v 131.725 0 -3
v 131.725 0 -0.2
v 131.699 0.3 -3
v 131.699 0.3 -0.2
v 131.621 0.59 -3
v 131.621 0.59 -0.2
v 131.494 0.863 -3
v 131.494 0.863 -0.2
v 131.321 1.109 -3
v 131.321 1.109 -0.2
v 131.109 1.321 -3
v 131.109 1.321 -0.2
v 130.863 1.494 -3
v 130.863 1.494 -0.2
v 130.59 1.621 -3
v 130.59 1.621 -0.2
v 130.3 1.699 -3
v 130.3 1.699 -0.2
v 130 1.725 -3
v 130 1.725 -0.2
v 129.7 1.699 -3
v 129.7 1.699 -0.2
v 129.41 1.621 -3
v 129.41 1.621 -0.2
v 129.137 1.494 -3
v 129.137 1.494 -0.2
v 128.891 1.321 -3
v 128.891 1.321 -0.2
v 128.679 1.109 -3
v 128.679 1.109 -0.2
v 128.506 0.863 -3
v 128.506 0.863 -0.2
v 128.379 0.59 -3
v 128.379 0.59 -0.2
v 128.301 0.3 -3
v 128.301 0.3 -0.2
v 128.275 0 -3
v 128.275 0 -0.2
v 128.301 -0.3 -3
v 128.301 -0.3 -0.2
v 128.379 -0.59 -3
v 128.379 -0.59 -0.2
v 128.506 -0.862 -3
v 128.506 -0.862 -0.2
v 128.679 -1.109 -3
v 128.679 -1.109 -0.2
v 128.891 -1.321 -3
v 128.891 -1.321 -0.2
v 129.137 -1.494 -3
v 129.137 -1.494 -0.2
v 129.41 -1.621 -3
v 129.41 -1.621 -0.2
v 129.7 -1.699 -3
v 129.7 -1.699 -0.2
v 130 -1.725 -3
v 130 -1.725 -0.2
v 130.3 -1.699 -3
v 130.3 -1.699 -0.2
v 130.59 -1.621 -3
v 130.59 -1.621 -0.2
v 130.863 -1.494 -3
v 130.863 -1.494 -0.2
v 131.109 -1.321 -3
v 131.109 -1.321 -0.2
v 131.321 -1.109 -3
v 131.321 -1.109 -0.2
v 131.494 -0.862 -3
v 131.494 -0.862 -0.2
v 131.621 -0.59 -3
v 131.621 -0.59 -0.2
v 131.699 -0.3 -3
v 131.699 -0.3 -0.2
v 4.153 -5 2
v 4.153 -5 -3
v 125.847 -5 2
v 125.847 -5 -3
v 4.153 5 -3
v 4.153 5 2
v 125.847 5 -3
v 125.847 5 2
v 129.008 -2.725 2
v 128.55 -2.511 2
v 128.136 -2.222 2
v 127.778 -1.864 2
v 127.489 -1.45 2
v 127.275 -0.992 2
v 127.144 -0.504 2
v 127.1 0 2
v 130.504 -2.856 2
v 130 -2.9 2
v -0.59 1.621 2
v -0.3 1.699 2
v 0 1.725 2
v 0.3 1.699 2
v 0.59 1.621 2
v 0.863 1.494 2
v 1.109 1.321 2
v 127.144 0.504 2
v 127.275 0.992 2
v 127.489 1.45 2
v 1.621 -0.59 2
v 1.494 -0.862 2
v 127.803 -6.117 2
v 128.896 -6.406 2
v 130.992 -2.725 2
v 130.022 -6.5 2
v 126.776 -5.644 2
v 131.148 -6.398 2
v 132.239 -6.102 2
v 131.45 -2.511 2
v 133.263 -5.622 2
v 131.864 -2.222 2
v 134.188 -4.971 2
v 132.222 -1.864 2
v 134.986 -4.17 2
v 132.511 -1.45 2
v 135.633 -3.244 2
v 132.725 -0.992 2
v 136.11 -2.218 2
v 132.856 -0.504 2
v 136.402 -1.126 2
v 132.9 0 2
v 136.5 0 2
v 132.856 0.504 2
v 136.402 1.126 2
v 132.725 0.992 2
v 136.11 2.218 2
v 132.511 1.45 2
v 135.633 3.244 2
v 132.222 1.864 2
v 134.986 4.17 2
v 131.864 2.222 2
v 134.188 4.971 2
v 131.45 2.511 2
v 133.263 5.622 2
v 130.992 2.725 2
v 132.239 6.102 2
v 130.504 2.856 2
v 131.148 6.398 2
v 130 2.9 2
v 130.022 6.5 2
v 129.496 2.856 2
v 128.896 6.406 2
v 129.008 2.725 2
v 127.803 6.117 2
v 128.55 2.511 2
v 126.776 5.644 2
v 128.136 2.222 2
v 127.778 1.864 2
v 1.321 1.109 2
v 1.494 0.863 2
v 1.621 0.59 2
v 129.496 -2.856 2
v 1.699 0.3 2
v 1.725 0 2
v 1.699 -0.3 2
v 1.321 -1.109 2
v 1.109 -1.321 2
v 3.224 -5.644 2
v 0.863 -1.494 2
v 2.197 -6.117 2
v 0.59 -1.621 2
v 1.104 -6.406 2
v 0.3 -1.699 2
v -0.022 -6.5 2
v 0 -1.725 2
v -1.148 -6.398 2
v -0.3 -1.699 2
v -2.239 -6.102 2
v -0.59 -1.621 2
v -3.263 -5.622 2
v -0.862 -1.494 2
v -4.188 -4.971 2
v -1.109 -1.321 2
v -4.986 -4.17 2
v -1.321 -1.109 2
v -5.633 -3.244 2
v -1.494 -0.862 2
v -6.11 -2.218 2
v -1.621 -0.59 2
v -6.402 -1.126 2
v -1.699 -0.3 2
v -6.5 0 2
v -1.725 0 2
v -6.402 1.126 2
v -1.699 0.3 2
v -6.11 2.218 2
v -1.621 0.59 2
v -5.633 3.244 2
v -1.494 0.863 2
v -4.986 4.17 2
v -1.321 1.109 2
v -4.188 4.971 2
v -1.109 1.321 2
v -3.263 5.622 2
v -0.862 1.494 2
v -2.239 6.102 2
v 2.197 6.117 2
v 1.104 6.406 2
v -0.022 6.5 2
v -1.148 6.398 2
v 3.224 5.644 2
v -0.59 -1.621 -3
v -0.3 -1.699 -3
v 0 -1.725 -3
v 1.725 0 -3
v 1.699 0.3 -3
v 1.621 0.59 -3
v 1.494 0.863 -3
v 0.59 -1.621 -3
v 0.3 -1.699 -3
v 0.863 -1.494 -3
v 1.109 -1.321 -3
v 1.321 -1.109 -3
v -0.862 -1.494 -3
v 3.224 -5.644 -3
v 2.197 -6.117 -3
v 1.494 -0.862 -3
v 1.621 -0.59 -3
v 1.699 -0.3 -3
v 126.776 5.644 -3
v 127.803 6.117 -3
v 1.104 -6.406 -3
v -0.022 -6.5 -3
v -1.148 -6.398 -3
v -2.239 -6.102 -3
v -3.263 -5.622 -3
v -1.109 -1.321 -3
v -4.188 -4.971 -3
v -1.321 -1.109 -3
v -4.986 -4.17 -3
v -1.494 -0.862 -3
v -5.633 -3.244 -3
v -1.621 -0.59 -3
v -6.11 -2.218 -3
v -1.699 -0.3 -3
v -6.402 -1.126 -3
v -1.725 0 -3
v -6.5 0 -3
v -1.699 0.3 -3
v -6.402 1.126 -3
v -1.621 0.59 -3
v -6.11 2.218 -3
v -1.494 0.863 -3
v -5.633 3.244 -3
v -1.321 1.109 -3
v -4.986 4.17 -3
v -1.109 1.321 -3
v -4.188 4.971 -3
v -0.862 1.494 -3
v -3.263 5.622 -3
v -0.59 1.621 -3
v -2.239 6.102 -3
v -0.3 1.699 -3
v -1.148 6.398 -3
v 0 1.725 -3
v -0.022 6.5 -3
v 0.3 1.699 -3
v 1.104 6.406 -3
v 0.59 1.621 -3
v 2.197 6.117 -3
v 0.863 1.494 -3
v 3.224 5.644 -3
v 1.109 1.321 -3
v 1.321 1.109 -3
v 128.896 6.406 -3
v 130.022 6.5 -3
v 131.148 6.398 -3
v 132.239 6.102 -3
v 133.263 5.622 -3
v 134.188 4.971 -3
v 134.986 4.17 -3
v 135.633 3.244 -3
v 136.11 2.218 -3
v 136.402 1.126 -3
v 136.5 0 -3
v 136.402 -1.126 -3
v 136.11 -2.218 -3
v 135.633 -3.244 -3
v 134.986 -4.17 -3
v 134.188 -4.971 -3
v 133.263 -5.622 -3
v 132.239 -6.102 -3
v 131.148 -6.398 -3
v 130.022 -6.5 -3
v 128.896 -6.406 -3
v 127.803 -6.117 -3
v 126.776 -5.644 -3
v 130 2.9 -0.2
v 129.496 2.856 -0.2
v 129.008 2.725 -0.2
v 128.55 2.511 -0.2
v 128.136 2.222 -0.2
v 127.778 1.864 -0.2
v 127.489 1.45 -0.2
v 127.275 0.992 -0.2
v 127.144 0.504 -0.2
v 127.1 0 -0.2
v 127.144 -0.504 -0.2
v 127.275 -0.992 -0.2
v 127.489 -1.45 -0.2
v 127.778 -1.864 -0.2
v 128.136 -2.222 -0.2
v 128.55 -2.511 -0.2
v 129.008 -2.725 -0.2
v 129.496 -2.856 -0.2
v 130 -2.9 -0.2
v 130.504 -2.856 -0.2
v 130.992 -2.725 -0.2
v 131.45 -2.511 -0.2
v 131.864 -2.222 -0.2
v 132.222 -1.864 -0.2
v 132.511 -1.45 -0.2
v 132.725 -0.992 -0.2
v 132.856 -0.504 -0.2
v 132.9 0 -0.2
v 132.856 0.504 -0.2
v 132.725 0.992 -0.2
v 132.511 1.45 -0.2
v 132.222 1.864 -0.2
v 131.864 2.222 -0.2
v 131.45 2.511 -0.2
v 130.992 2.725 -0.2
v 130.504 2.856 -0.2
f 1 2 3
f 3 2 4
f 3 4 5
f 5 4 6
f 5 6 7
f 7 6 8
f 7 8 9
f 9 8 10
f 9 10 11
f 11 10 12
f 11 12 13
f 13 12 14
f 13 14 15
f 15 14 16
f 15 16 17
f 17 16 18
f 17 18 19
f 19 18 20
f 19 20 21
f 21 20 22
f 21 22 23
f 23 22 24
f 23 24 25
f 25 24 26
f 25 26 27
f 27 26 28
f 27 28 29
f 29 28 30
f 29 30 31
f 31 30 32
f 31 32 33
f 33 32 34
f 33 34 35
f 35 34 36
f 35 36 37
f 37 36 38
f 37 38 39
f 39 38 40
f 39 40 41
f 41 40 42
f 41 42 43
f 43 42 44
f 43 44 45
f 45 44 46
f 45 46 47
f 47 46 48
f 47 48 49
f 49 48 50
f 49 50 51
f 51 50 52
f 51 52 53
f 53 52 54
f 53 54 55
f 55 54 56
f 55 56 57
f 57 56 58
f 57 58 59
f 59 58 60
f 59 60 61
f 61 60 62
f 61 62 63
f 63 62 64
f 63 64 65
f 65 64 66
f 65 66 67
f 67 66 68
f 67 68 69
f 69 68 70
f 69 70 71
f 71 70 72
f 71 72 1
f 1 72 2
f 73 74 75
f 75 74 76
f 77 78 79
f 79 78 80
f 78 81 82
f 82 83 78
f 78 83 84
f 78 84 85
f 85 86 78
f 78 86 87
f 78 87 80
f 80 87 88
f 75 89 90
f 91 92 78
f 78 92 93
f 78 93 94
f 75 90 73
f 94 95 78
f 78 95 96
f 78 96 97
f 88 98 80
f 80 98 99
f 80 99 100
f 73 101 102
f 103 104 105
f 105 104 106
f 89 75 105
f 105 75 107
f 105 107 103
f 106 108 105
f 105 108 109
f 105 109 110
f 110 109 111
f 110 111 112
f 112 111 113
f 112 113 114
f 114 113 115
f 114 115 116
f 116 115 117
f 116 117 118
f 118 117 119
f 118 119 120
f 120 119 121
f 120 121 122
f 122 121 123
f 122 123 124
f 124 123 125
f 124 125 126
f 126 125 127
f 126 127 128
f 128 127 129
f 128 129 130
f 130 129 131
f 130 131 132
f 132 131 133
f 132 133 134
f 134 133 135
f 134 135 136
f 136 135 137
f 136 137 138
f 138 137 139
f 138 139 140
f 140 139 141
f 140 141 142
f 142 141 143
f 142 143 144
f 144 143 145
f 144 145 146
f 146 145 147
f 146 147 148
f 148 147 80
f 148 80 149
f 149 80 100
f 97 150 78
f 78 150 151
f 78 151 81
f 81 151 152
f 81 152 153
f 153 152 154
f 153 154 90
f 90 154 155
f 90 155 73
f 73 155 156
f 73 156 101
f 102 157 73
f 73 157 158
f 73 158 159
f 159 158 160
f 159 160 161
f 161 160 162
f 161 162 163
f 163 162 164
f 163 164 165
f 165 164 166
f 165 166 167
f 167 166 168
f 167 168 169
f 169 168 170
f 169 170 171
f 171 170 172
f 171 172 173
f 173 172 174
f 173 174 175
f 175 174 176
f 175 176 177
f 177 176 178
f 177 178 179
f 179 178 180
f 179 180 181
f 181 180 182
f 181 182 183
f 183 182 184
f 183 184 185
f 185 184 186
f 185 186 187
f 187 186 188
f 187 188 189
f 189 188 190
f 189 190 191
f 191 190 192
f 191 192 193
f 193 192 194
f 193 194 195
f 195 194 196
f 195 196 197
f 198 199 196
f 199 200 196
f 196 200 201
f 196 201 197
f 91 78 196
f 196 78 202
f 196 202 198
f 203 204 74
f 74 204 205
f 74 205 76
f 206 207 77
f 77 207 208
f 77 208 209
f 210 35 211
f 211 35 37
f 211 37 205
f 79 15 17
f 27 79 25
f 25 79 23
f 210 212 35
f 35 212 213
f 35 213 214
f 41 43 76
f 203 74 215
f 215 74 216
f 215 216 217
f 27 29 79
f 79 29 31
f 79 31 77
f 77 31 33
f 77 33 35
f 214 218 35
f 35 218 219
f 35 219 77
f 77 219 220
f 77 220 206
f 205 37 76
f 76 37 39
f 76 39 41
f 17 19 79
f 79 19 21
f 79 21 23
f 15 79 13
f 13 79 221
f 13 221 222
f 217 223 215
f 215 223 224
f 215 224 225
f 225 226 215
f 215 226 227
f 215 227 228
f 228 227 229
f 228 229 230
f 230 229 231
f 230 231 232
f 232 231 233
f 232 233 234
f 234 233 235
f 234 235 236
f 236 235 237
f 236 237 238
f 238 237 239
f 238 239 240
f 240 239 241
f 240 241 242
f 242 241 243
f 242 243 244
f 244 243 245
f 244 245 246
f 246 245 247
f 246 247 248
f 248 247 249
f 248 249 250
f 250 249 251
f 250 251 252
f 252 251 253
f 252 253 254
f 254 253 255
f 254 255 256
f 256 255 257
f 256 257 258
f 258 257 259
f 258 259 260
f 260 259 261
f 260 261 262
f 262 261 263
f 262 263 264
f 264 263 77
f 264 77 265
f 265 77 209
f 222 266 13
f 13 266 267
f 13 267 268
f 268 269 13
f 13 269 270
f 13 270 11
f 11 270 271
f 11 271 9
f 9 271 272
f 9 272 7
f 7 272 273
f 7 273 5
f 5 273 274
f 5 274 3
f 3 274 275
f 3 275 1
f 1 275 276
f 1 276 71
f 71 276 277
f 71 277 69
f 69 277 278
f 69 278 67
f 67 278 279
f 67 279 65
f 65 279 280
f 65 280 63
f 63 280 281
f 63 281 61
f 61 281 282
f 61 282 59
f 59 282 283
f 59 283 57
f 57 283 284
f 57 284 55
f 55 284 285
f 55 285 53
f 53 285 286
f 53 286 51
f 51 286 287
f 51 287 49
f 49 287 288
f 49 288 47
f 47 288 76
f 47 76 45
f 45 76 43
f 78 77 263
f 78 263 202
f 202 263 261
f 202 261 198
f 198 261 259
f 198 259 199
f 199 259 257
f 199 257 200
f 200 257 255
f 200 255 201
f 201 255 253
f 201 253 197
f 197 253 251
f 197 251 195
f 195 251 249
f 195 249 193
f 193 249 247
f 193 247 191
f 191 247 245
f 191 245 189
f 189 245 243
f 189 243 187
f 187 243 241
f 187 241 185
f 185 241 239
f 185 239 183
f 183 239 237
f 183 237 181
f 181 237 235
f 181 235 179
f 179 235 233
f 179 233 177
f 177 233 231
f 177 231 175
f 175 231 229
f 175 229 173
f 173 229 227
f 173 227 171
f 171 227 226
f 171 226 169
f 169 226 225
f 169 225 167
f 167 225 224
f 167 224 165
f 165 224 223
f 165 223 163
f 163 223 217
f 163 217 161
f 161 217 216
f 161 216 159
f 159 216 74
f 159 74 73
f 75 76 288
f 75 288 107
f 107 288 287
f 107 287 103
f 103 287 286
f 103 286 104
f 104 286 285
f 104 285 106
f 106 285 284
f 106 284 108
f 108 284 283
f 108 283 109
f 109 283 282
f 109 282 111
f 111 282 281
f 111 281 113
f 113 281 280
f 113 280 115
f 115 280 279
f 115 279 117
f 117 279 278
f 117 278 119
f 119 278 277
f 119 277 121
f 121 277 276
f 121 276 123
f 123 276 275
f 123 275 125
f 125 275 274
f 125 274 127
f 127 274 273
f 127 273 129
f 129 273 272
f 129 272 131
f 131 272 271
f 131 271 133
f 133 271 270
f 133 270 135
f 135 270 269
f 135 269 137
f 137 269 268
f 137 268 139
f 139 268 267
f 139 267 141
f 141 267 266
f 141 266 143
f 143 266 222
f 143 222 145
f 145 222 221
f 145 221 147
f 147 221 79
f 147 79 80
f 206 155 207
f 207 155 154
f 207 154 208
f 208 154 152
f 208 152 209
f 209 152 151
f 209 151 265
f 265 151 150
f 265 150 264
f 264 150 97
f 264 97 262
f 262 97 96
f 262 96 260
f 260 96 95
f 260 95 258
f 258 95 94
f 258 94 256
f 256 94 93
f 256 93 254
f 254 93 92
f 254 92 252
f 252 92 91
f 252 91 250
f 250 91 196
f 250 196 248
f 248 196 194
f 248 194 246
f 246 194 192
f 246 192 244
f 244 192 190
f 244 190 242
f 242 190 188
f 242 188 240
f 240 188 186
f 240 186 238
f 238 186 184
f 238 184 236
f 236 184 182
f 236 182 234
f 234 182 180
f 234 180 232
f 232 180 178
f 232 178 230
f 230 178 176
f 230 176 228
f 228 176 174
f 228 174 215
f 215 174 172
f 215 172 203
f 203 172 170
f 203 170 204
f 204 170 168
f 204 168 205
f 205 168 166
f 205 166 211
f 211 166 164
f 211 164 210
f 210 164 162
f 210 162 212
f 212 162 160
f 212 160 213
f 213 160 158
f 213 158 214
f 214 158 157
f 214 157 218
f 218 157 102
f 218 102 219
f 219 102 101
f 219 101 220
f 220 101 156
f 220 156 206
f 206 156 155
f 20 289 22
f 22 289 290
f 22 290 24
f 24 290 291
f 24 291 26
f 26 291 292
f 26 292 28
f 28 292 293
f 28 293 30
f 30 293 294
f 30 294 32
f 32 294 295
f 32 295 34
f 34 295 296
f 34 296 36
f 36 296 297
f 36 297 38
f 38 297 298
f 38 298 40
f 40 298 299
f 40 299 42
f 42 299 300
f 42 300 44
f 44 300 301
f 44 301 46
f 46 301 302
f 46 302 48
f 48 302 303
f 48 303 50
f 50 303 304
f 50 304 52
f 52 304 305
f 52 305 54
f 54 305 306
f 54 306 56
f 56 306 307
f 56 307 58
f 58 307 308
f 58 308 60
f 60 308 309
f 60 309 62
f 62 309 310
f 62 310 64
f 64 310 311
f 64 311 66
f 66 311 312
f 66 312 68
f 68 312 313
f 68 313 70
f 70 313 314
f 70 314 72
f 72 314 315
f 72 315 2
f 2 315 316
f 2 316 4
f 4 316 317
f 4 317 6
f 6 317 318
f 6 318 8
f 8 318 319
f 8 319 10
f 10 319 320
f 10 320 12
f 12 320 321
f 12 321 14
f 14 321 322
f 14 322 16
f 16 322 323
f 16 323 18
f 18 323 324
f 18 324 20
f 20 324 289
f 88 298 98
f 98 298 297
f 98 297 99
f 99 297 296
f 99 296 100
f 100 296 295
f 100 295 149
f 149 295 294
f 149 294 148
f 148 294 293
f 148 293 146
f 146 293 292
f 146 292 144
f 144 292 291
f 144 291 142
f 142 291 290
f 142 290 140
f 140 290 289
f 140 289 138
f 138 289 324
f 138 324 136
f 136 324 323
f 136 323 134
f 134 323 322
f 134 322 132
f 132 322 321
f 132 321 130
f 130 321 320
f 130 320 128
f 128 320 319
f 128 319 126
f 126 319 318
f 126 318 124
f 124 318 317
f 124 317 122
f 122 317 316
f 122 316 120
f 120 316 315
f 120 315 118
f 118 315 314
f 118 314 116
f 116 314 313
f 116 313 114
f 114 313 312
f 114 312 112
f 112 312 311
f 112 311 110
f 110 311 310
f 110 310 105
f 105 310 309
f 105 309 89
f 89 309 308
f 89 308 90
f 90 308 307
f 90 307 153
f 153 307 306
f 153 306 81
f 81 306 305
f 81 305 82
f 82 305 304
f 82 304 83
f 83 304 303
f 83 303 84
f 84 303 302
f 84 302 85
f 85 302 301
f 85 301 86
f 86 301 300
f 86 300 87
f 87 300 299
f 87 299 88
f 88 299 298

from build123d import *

# Parameters (mm, degrees)
BOSS_EXTRUDE1_START     = -3
SKETCH1_W               = 130
SKETCH1_H               = 10
BOSS_EXTRUDE1_DEPTH     = 5
BOSS_EXTRUDE2_START     = -3
SKETCH2_R               = 6.5
BOSS_EXTRUDE2_DEPTH     = 5
BOSS_EXTRUDE3_START     = -3
SKETCH3_R               = 6.5
BOSS_EXTRUDE3_DEPTH     = 5
CUT_EXTRUDE1_DEPTH      = 137.687600023
CUT_EXTRUDE1_DEPTH_BACK = 137.687600023
SKETCH4_R               = 1.725
CUT_EXTRUDE2_START      = -0.2
SKETCH5_R               = 2.9
CUT_EXTRUDE2_DEPTH      = 2.2


with BuildPart() as part:
    # Sketch1 → Boss-Extrude1 (new body)
    with BuildSketch(Plane.XY.offset(BOSS_EXTRUDE1_START)):
        with Locations((65, 0)):
            Rectangle(SKETCH1_W, SKETCH1_H)
    extrude(amount=BOSS_EXTRUDE1_DEPTH)

    # Sketch2 → Boss-Extrude2 (add)
    with BuildSketch(Plane.XY.offset(BOSS_EXTRUDE2_START)):
        Circle(SKETCH2_R)
    extrude(amount=BOSS_EXTRUDE2_DEPTH)

    # Sketch3 → Boss-Extrude3 (add)
    with BuildSketch(Plane.XY.offset(BOSS_EXTRUDE3_START)):
        with Locations((130, 0)):
            Circle(SKETCH3_R)
    extrude(amount=BOSS_EXTRUDE3_DEPTH)

    # Sketch4 → Cut-Extrude1 (cut, two sides: drawn at the far end of the back side and taken through both)
    with BuildSketch(Plane.XY.offset(-CUT_EXTRUDE1_DEPTH_BACK)):
        Circle(SKETCH4_R)
        with Locations((130, 0)):
            Circle(SKETCH4_R)
    extrude(amount=CUT_EXTRUDE1_DEPTH + CUT_EXTRUDE1_DEPTH_BACK, mode=Mode.SUBTRACT)

    # Sketch5 → Cut-Extrude2 (cut)
    with BuildSketch(Plane.XY.offset(CUT_EXTRUDE2_START)):
        with Locations((130, 0)):
            Circle(SKETCH5_R)
    extrude(amount=CUT_EXTRUDE2_DEPTH, mode=Mode.SUBTRACT)


solid = part.part
